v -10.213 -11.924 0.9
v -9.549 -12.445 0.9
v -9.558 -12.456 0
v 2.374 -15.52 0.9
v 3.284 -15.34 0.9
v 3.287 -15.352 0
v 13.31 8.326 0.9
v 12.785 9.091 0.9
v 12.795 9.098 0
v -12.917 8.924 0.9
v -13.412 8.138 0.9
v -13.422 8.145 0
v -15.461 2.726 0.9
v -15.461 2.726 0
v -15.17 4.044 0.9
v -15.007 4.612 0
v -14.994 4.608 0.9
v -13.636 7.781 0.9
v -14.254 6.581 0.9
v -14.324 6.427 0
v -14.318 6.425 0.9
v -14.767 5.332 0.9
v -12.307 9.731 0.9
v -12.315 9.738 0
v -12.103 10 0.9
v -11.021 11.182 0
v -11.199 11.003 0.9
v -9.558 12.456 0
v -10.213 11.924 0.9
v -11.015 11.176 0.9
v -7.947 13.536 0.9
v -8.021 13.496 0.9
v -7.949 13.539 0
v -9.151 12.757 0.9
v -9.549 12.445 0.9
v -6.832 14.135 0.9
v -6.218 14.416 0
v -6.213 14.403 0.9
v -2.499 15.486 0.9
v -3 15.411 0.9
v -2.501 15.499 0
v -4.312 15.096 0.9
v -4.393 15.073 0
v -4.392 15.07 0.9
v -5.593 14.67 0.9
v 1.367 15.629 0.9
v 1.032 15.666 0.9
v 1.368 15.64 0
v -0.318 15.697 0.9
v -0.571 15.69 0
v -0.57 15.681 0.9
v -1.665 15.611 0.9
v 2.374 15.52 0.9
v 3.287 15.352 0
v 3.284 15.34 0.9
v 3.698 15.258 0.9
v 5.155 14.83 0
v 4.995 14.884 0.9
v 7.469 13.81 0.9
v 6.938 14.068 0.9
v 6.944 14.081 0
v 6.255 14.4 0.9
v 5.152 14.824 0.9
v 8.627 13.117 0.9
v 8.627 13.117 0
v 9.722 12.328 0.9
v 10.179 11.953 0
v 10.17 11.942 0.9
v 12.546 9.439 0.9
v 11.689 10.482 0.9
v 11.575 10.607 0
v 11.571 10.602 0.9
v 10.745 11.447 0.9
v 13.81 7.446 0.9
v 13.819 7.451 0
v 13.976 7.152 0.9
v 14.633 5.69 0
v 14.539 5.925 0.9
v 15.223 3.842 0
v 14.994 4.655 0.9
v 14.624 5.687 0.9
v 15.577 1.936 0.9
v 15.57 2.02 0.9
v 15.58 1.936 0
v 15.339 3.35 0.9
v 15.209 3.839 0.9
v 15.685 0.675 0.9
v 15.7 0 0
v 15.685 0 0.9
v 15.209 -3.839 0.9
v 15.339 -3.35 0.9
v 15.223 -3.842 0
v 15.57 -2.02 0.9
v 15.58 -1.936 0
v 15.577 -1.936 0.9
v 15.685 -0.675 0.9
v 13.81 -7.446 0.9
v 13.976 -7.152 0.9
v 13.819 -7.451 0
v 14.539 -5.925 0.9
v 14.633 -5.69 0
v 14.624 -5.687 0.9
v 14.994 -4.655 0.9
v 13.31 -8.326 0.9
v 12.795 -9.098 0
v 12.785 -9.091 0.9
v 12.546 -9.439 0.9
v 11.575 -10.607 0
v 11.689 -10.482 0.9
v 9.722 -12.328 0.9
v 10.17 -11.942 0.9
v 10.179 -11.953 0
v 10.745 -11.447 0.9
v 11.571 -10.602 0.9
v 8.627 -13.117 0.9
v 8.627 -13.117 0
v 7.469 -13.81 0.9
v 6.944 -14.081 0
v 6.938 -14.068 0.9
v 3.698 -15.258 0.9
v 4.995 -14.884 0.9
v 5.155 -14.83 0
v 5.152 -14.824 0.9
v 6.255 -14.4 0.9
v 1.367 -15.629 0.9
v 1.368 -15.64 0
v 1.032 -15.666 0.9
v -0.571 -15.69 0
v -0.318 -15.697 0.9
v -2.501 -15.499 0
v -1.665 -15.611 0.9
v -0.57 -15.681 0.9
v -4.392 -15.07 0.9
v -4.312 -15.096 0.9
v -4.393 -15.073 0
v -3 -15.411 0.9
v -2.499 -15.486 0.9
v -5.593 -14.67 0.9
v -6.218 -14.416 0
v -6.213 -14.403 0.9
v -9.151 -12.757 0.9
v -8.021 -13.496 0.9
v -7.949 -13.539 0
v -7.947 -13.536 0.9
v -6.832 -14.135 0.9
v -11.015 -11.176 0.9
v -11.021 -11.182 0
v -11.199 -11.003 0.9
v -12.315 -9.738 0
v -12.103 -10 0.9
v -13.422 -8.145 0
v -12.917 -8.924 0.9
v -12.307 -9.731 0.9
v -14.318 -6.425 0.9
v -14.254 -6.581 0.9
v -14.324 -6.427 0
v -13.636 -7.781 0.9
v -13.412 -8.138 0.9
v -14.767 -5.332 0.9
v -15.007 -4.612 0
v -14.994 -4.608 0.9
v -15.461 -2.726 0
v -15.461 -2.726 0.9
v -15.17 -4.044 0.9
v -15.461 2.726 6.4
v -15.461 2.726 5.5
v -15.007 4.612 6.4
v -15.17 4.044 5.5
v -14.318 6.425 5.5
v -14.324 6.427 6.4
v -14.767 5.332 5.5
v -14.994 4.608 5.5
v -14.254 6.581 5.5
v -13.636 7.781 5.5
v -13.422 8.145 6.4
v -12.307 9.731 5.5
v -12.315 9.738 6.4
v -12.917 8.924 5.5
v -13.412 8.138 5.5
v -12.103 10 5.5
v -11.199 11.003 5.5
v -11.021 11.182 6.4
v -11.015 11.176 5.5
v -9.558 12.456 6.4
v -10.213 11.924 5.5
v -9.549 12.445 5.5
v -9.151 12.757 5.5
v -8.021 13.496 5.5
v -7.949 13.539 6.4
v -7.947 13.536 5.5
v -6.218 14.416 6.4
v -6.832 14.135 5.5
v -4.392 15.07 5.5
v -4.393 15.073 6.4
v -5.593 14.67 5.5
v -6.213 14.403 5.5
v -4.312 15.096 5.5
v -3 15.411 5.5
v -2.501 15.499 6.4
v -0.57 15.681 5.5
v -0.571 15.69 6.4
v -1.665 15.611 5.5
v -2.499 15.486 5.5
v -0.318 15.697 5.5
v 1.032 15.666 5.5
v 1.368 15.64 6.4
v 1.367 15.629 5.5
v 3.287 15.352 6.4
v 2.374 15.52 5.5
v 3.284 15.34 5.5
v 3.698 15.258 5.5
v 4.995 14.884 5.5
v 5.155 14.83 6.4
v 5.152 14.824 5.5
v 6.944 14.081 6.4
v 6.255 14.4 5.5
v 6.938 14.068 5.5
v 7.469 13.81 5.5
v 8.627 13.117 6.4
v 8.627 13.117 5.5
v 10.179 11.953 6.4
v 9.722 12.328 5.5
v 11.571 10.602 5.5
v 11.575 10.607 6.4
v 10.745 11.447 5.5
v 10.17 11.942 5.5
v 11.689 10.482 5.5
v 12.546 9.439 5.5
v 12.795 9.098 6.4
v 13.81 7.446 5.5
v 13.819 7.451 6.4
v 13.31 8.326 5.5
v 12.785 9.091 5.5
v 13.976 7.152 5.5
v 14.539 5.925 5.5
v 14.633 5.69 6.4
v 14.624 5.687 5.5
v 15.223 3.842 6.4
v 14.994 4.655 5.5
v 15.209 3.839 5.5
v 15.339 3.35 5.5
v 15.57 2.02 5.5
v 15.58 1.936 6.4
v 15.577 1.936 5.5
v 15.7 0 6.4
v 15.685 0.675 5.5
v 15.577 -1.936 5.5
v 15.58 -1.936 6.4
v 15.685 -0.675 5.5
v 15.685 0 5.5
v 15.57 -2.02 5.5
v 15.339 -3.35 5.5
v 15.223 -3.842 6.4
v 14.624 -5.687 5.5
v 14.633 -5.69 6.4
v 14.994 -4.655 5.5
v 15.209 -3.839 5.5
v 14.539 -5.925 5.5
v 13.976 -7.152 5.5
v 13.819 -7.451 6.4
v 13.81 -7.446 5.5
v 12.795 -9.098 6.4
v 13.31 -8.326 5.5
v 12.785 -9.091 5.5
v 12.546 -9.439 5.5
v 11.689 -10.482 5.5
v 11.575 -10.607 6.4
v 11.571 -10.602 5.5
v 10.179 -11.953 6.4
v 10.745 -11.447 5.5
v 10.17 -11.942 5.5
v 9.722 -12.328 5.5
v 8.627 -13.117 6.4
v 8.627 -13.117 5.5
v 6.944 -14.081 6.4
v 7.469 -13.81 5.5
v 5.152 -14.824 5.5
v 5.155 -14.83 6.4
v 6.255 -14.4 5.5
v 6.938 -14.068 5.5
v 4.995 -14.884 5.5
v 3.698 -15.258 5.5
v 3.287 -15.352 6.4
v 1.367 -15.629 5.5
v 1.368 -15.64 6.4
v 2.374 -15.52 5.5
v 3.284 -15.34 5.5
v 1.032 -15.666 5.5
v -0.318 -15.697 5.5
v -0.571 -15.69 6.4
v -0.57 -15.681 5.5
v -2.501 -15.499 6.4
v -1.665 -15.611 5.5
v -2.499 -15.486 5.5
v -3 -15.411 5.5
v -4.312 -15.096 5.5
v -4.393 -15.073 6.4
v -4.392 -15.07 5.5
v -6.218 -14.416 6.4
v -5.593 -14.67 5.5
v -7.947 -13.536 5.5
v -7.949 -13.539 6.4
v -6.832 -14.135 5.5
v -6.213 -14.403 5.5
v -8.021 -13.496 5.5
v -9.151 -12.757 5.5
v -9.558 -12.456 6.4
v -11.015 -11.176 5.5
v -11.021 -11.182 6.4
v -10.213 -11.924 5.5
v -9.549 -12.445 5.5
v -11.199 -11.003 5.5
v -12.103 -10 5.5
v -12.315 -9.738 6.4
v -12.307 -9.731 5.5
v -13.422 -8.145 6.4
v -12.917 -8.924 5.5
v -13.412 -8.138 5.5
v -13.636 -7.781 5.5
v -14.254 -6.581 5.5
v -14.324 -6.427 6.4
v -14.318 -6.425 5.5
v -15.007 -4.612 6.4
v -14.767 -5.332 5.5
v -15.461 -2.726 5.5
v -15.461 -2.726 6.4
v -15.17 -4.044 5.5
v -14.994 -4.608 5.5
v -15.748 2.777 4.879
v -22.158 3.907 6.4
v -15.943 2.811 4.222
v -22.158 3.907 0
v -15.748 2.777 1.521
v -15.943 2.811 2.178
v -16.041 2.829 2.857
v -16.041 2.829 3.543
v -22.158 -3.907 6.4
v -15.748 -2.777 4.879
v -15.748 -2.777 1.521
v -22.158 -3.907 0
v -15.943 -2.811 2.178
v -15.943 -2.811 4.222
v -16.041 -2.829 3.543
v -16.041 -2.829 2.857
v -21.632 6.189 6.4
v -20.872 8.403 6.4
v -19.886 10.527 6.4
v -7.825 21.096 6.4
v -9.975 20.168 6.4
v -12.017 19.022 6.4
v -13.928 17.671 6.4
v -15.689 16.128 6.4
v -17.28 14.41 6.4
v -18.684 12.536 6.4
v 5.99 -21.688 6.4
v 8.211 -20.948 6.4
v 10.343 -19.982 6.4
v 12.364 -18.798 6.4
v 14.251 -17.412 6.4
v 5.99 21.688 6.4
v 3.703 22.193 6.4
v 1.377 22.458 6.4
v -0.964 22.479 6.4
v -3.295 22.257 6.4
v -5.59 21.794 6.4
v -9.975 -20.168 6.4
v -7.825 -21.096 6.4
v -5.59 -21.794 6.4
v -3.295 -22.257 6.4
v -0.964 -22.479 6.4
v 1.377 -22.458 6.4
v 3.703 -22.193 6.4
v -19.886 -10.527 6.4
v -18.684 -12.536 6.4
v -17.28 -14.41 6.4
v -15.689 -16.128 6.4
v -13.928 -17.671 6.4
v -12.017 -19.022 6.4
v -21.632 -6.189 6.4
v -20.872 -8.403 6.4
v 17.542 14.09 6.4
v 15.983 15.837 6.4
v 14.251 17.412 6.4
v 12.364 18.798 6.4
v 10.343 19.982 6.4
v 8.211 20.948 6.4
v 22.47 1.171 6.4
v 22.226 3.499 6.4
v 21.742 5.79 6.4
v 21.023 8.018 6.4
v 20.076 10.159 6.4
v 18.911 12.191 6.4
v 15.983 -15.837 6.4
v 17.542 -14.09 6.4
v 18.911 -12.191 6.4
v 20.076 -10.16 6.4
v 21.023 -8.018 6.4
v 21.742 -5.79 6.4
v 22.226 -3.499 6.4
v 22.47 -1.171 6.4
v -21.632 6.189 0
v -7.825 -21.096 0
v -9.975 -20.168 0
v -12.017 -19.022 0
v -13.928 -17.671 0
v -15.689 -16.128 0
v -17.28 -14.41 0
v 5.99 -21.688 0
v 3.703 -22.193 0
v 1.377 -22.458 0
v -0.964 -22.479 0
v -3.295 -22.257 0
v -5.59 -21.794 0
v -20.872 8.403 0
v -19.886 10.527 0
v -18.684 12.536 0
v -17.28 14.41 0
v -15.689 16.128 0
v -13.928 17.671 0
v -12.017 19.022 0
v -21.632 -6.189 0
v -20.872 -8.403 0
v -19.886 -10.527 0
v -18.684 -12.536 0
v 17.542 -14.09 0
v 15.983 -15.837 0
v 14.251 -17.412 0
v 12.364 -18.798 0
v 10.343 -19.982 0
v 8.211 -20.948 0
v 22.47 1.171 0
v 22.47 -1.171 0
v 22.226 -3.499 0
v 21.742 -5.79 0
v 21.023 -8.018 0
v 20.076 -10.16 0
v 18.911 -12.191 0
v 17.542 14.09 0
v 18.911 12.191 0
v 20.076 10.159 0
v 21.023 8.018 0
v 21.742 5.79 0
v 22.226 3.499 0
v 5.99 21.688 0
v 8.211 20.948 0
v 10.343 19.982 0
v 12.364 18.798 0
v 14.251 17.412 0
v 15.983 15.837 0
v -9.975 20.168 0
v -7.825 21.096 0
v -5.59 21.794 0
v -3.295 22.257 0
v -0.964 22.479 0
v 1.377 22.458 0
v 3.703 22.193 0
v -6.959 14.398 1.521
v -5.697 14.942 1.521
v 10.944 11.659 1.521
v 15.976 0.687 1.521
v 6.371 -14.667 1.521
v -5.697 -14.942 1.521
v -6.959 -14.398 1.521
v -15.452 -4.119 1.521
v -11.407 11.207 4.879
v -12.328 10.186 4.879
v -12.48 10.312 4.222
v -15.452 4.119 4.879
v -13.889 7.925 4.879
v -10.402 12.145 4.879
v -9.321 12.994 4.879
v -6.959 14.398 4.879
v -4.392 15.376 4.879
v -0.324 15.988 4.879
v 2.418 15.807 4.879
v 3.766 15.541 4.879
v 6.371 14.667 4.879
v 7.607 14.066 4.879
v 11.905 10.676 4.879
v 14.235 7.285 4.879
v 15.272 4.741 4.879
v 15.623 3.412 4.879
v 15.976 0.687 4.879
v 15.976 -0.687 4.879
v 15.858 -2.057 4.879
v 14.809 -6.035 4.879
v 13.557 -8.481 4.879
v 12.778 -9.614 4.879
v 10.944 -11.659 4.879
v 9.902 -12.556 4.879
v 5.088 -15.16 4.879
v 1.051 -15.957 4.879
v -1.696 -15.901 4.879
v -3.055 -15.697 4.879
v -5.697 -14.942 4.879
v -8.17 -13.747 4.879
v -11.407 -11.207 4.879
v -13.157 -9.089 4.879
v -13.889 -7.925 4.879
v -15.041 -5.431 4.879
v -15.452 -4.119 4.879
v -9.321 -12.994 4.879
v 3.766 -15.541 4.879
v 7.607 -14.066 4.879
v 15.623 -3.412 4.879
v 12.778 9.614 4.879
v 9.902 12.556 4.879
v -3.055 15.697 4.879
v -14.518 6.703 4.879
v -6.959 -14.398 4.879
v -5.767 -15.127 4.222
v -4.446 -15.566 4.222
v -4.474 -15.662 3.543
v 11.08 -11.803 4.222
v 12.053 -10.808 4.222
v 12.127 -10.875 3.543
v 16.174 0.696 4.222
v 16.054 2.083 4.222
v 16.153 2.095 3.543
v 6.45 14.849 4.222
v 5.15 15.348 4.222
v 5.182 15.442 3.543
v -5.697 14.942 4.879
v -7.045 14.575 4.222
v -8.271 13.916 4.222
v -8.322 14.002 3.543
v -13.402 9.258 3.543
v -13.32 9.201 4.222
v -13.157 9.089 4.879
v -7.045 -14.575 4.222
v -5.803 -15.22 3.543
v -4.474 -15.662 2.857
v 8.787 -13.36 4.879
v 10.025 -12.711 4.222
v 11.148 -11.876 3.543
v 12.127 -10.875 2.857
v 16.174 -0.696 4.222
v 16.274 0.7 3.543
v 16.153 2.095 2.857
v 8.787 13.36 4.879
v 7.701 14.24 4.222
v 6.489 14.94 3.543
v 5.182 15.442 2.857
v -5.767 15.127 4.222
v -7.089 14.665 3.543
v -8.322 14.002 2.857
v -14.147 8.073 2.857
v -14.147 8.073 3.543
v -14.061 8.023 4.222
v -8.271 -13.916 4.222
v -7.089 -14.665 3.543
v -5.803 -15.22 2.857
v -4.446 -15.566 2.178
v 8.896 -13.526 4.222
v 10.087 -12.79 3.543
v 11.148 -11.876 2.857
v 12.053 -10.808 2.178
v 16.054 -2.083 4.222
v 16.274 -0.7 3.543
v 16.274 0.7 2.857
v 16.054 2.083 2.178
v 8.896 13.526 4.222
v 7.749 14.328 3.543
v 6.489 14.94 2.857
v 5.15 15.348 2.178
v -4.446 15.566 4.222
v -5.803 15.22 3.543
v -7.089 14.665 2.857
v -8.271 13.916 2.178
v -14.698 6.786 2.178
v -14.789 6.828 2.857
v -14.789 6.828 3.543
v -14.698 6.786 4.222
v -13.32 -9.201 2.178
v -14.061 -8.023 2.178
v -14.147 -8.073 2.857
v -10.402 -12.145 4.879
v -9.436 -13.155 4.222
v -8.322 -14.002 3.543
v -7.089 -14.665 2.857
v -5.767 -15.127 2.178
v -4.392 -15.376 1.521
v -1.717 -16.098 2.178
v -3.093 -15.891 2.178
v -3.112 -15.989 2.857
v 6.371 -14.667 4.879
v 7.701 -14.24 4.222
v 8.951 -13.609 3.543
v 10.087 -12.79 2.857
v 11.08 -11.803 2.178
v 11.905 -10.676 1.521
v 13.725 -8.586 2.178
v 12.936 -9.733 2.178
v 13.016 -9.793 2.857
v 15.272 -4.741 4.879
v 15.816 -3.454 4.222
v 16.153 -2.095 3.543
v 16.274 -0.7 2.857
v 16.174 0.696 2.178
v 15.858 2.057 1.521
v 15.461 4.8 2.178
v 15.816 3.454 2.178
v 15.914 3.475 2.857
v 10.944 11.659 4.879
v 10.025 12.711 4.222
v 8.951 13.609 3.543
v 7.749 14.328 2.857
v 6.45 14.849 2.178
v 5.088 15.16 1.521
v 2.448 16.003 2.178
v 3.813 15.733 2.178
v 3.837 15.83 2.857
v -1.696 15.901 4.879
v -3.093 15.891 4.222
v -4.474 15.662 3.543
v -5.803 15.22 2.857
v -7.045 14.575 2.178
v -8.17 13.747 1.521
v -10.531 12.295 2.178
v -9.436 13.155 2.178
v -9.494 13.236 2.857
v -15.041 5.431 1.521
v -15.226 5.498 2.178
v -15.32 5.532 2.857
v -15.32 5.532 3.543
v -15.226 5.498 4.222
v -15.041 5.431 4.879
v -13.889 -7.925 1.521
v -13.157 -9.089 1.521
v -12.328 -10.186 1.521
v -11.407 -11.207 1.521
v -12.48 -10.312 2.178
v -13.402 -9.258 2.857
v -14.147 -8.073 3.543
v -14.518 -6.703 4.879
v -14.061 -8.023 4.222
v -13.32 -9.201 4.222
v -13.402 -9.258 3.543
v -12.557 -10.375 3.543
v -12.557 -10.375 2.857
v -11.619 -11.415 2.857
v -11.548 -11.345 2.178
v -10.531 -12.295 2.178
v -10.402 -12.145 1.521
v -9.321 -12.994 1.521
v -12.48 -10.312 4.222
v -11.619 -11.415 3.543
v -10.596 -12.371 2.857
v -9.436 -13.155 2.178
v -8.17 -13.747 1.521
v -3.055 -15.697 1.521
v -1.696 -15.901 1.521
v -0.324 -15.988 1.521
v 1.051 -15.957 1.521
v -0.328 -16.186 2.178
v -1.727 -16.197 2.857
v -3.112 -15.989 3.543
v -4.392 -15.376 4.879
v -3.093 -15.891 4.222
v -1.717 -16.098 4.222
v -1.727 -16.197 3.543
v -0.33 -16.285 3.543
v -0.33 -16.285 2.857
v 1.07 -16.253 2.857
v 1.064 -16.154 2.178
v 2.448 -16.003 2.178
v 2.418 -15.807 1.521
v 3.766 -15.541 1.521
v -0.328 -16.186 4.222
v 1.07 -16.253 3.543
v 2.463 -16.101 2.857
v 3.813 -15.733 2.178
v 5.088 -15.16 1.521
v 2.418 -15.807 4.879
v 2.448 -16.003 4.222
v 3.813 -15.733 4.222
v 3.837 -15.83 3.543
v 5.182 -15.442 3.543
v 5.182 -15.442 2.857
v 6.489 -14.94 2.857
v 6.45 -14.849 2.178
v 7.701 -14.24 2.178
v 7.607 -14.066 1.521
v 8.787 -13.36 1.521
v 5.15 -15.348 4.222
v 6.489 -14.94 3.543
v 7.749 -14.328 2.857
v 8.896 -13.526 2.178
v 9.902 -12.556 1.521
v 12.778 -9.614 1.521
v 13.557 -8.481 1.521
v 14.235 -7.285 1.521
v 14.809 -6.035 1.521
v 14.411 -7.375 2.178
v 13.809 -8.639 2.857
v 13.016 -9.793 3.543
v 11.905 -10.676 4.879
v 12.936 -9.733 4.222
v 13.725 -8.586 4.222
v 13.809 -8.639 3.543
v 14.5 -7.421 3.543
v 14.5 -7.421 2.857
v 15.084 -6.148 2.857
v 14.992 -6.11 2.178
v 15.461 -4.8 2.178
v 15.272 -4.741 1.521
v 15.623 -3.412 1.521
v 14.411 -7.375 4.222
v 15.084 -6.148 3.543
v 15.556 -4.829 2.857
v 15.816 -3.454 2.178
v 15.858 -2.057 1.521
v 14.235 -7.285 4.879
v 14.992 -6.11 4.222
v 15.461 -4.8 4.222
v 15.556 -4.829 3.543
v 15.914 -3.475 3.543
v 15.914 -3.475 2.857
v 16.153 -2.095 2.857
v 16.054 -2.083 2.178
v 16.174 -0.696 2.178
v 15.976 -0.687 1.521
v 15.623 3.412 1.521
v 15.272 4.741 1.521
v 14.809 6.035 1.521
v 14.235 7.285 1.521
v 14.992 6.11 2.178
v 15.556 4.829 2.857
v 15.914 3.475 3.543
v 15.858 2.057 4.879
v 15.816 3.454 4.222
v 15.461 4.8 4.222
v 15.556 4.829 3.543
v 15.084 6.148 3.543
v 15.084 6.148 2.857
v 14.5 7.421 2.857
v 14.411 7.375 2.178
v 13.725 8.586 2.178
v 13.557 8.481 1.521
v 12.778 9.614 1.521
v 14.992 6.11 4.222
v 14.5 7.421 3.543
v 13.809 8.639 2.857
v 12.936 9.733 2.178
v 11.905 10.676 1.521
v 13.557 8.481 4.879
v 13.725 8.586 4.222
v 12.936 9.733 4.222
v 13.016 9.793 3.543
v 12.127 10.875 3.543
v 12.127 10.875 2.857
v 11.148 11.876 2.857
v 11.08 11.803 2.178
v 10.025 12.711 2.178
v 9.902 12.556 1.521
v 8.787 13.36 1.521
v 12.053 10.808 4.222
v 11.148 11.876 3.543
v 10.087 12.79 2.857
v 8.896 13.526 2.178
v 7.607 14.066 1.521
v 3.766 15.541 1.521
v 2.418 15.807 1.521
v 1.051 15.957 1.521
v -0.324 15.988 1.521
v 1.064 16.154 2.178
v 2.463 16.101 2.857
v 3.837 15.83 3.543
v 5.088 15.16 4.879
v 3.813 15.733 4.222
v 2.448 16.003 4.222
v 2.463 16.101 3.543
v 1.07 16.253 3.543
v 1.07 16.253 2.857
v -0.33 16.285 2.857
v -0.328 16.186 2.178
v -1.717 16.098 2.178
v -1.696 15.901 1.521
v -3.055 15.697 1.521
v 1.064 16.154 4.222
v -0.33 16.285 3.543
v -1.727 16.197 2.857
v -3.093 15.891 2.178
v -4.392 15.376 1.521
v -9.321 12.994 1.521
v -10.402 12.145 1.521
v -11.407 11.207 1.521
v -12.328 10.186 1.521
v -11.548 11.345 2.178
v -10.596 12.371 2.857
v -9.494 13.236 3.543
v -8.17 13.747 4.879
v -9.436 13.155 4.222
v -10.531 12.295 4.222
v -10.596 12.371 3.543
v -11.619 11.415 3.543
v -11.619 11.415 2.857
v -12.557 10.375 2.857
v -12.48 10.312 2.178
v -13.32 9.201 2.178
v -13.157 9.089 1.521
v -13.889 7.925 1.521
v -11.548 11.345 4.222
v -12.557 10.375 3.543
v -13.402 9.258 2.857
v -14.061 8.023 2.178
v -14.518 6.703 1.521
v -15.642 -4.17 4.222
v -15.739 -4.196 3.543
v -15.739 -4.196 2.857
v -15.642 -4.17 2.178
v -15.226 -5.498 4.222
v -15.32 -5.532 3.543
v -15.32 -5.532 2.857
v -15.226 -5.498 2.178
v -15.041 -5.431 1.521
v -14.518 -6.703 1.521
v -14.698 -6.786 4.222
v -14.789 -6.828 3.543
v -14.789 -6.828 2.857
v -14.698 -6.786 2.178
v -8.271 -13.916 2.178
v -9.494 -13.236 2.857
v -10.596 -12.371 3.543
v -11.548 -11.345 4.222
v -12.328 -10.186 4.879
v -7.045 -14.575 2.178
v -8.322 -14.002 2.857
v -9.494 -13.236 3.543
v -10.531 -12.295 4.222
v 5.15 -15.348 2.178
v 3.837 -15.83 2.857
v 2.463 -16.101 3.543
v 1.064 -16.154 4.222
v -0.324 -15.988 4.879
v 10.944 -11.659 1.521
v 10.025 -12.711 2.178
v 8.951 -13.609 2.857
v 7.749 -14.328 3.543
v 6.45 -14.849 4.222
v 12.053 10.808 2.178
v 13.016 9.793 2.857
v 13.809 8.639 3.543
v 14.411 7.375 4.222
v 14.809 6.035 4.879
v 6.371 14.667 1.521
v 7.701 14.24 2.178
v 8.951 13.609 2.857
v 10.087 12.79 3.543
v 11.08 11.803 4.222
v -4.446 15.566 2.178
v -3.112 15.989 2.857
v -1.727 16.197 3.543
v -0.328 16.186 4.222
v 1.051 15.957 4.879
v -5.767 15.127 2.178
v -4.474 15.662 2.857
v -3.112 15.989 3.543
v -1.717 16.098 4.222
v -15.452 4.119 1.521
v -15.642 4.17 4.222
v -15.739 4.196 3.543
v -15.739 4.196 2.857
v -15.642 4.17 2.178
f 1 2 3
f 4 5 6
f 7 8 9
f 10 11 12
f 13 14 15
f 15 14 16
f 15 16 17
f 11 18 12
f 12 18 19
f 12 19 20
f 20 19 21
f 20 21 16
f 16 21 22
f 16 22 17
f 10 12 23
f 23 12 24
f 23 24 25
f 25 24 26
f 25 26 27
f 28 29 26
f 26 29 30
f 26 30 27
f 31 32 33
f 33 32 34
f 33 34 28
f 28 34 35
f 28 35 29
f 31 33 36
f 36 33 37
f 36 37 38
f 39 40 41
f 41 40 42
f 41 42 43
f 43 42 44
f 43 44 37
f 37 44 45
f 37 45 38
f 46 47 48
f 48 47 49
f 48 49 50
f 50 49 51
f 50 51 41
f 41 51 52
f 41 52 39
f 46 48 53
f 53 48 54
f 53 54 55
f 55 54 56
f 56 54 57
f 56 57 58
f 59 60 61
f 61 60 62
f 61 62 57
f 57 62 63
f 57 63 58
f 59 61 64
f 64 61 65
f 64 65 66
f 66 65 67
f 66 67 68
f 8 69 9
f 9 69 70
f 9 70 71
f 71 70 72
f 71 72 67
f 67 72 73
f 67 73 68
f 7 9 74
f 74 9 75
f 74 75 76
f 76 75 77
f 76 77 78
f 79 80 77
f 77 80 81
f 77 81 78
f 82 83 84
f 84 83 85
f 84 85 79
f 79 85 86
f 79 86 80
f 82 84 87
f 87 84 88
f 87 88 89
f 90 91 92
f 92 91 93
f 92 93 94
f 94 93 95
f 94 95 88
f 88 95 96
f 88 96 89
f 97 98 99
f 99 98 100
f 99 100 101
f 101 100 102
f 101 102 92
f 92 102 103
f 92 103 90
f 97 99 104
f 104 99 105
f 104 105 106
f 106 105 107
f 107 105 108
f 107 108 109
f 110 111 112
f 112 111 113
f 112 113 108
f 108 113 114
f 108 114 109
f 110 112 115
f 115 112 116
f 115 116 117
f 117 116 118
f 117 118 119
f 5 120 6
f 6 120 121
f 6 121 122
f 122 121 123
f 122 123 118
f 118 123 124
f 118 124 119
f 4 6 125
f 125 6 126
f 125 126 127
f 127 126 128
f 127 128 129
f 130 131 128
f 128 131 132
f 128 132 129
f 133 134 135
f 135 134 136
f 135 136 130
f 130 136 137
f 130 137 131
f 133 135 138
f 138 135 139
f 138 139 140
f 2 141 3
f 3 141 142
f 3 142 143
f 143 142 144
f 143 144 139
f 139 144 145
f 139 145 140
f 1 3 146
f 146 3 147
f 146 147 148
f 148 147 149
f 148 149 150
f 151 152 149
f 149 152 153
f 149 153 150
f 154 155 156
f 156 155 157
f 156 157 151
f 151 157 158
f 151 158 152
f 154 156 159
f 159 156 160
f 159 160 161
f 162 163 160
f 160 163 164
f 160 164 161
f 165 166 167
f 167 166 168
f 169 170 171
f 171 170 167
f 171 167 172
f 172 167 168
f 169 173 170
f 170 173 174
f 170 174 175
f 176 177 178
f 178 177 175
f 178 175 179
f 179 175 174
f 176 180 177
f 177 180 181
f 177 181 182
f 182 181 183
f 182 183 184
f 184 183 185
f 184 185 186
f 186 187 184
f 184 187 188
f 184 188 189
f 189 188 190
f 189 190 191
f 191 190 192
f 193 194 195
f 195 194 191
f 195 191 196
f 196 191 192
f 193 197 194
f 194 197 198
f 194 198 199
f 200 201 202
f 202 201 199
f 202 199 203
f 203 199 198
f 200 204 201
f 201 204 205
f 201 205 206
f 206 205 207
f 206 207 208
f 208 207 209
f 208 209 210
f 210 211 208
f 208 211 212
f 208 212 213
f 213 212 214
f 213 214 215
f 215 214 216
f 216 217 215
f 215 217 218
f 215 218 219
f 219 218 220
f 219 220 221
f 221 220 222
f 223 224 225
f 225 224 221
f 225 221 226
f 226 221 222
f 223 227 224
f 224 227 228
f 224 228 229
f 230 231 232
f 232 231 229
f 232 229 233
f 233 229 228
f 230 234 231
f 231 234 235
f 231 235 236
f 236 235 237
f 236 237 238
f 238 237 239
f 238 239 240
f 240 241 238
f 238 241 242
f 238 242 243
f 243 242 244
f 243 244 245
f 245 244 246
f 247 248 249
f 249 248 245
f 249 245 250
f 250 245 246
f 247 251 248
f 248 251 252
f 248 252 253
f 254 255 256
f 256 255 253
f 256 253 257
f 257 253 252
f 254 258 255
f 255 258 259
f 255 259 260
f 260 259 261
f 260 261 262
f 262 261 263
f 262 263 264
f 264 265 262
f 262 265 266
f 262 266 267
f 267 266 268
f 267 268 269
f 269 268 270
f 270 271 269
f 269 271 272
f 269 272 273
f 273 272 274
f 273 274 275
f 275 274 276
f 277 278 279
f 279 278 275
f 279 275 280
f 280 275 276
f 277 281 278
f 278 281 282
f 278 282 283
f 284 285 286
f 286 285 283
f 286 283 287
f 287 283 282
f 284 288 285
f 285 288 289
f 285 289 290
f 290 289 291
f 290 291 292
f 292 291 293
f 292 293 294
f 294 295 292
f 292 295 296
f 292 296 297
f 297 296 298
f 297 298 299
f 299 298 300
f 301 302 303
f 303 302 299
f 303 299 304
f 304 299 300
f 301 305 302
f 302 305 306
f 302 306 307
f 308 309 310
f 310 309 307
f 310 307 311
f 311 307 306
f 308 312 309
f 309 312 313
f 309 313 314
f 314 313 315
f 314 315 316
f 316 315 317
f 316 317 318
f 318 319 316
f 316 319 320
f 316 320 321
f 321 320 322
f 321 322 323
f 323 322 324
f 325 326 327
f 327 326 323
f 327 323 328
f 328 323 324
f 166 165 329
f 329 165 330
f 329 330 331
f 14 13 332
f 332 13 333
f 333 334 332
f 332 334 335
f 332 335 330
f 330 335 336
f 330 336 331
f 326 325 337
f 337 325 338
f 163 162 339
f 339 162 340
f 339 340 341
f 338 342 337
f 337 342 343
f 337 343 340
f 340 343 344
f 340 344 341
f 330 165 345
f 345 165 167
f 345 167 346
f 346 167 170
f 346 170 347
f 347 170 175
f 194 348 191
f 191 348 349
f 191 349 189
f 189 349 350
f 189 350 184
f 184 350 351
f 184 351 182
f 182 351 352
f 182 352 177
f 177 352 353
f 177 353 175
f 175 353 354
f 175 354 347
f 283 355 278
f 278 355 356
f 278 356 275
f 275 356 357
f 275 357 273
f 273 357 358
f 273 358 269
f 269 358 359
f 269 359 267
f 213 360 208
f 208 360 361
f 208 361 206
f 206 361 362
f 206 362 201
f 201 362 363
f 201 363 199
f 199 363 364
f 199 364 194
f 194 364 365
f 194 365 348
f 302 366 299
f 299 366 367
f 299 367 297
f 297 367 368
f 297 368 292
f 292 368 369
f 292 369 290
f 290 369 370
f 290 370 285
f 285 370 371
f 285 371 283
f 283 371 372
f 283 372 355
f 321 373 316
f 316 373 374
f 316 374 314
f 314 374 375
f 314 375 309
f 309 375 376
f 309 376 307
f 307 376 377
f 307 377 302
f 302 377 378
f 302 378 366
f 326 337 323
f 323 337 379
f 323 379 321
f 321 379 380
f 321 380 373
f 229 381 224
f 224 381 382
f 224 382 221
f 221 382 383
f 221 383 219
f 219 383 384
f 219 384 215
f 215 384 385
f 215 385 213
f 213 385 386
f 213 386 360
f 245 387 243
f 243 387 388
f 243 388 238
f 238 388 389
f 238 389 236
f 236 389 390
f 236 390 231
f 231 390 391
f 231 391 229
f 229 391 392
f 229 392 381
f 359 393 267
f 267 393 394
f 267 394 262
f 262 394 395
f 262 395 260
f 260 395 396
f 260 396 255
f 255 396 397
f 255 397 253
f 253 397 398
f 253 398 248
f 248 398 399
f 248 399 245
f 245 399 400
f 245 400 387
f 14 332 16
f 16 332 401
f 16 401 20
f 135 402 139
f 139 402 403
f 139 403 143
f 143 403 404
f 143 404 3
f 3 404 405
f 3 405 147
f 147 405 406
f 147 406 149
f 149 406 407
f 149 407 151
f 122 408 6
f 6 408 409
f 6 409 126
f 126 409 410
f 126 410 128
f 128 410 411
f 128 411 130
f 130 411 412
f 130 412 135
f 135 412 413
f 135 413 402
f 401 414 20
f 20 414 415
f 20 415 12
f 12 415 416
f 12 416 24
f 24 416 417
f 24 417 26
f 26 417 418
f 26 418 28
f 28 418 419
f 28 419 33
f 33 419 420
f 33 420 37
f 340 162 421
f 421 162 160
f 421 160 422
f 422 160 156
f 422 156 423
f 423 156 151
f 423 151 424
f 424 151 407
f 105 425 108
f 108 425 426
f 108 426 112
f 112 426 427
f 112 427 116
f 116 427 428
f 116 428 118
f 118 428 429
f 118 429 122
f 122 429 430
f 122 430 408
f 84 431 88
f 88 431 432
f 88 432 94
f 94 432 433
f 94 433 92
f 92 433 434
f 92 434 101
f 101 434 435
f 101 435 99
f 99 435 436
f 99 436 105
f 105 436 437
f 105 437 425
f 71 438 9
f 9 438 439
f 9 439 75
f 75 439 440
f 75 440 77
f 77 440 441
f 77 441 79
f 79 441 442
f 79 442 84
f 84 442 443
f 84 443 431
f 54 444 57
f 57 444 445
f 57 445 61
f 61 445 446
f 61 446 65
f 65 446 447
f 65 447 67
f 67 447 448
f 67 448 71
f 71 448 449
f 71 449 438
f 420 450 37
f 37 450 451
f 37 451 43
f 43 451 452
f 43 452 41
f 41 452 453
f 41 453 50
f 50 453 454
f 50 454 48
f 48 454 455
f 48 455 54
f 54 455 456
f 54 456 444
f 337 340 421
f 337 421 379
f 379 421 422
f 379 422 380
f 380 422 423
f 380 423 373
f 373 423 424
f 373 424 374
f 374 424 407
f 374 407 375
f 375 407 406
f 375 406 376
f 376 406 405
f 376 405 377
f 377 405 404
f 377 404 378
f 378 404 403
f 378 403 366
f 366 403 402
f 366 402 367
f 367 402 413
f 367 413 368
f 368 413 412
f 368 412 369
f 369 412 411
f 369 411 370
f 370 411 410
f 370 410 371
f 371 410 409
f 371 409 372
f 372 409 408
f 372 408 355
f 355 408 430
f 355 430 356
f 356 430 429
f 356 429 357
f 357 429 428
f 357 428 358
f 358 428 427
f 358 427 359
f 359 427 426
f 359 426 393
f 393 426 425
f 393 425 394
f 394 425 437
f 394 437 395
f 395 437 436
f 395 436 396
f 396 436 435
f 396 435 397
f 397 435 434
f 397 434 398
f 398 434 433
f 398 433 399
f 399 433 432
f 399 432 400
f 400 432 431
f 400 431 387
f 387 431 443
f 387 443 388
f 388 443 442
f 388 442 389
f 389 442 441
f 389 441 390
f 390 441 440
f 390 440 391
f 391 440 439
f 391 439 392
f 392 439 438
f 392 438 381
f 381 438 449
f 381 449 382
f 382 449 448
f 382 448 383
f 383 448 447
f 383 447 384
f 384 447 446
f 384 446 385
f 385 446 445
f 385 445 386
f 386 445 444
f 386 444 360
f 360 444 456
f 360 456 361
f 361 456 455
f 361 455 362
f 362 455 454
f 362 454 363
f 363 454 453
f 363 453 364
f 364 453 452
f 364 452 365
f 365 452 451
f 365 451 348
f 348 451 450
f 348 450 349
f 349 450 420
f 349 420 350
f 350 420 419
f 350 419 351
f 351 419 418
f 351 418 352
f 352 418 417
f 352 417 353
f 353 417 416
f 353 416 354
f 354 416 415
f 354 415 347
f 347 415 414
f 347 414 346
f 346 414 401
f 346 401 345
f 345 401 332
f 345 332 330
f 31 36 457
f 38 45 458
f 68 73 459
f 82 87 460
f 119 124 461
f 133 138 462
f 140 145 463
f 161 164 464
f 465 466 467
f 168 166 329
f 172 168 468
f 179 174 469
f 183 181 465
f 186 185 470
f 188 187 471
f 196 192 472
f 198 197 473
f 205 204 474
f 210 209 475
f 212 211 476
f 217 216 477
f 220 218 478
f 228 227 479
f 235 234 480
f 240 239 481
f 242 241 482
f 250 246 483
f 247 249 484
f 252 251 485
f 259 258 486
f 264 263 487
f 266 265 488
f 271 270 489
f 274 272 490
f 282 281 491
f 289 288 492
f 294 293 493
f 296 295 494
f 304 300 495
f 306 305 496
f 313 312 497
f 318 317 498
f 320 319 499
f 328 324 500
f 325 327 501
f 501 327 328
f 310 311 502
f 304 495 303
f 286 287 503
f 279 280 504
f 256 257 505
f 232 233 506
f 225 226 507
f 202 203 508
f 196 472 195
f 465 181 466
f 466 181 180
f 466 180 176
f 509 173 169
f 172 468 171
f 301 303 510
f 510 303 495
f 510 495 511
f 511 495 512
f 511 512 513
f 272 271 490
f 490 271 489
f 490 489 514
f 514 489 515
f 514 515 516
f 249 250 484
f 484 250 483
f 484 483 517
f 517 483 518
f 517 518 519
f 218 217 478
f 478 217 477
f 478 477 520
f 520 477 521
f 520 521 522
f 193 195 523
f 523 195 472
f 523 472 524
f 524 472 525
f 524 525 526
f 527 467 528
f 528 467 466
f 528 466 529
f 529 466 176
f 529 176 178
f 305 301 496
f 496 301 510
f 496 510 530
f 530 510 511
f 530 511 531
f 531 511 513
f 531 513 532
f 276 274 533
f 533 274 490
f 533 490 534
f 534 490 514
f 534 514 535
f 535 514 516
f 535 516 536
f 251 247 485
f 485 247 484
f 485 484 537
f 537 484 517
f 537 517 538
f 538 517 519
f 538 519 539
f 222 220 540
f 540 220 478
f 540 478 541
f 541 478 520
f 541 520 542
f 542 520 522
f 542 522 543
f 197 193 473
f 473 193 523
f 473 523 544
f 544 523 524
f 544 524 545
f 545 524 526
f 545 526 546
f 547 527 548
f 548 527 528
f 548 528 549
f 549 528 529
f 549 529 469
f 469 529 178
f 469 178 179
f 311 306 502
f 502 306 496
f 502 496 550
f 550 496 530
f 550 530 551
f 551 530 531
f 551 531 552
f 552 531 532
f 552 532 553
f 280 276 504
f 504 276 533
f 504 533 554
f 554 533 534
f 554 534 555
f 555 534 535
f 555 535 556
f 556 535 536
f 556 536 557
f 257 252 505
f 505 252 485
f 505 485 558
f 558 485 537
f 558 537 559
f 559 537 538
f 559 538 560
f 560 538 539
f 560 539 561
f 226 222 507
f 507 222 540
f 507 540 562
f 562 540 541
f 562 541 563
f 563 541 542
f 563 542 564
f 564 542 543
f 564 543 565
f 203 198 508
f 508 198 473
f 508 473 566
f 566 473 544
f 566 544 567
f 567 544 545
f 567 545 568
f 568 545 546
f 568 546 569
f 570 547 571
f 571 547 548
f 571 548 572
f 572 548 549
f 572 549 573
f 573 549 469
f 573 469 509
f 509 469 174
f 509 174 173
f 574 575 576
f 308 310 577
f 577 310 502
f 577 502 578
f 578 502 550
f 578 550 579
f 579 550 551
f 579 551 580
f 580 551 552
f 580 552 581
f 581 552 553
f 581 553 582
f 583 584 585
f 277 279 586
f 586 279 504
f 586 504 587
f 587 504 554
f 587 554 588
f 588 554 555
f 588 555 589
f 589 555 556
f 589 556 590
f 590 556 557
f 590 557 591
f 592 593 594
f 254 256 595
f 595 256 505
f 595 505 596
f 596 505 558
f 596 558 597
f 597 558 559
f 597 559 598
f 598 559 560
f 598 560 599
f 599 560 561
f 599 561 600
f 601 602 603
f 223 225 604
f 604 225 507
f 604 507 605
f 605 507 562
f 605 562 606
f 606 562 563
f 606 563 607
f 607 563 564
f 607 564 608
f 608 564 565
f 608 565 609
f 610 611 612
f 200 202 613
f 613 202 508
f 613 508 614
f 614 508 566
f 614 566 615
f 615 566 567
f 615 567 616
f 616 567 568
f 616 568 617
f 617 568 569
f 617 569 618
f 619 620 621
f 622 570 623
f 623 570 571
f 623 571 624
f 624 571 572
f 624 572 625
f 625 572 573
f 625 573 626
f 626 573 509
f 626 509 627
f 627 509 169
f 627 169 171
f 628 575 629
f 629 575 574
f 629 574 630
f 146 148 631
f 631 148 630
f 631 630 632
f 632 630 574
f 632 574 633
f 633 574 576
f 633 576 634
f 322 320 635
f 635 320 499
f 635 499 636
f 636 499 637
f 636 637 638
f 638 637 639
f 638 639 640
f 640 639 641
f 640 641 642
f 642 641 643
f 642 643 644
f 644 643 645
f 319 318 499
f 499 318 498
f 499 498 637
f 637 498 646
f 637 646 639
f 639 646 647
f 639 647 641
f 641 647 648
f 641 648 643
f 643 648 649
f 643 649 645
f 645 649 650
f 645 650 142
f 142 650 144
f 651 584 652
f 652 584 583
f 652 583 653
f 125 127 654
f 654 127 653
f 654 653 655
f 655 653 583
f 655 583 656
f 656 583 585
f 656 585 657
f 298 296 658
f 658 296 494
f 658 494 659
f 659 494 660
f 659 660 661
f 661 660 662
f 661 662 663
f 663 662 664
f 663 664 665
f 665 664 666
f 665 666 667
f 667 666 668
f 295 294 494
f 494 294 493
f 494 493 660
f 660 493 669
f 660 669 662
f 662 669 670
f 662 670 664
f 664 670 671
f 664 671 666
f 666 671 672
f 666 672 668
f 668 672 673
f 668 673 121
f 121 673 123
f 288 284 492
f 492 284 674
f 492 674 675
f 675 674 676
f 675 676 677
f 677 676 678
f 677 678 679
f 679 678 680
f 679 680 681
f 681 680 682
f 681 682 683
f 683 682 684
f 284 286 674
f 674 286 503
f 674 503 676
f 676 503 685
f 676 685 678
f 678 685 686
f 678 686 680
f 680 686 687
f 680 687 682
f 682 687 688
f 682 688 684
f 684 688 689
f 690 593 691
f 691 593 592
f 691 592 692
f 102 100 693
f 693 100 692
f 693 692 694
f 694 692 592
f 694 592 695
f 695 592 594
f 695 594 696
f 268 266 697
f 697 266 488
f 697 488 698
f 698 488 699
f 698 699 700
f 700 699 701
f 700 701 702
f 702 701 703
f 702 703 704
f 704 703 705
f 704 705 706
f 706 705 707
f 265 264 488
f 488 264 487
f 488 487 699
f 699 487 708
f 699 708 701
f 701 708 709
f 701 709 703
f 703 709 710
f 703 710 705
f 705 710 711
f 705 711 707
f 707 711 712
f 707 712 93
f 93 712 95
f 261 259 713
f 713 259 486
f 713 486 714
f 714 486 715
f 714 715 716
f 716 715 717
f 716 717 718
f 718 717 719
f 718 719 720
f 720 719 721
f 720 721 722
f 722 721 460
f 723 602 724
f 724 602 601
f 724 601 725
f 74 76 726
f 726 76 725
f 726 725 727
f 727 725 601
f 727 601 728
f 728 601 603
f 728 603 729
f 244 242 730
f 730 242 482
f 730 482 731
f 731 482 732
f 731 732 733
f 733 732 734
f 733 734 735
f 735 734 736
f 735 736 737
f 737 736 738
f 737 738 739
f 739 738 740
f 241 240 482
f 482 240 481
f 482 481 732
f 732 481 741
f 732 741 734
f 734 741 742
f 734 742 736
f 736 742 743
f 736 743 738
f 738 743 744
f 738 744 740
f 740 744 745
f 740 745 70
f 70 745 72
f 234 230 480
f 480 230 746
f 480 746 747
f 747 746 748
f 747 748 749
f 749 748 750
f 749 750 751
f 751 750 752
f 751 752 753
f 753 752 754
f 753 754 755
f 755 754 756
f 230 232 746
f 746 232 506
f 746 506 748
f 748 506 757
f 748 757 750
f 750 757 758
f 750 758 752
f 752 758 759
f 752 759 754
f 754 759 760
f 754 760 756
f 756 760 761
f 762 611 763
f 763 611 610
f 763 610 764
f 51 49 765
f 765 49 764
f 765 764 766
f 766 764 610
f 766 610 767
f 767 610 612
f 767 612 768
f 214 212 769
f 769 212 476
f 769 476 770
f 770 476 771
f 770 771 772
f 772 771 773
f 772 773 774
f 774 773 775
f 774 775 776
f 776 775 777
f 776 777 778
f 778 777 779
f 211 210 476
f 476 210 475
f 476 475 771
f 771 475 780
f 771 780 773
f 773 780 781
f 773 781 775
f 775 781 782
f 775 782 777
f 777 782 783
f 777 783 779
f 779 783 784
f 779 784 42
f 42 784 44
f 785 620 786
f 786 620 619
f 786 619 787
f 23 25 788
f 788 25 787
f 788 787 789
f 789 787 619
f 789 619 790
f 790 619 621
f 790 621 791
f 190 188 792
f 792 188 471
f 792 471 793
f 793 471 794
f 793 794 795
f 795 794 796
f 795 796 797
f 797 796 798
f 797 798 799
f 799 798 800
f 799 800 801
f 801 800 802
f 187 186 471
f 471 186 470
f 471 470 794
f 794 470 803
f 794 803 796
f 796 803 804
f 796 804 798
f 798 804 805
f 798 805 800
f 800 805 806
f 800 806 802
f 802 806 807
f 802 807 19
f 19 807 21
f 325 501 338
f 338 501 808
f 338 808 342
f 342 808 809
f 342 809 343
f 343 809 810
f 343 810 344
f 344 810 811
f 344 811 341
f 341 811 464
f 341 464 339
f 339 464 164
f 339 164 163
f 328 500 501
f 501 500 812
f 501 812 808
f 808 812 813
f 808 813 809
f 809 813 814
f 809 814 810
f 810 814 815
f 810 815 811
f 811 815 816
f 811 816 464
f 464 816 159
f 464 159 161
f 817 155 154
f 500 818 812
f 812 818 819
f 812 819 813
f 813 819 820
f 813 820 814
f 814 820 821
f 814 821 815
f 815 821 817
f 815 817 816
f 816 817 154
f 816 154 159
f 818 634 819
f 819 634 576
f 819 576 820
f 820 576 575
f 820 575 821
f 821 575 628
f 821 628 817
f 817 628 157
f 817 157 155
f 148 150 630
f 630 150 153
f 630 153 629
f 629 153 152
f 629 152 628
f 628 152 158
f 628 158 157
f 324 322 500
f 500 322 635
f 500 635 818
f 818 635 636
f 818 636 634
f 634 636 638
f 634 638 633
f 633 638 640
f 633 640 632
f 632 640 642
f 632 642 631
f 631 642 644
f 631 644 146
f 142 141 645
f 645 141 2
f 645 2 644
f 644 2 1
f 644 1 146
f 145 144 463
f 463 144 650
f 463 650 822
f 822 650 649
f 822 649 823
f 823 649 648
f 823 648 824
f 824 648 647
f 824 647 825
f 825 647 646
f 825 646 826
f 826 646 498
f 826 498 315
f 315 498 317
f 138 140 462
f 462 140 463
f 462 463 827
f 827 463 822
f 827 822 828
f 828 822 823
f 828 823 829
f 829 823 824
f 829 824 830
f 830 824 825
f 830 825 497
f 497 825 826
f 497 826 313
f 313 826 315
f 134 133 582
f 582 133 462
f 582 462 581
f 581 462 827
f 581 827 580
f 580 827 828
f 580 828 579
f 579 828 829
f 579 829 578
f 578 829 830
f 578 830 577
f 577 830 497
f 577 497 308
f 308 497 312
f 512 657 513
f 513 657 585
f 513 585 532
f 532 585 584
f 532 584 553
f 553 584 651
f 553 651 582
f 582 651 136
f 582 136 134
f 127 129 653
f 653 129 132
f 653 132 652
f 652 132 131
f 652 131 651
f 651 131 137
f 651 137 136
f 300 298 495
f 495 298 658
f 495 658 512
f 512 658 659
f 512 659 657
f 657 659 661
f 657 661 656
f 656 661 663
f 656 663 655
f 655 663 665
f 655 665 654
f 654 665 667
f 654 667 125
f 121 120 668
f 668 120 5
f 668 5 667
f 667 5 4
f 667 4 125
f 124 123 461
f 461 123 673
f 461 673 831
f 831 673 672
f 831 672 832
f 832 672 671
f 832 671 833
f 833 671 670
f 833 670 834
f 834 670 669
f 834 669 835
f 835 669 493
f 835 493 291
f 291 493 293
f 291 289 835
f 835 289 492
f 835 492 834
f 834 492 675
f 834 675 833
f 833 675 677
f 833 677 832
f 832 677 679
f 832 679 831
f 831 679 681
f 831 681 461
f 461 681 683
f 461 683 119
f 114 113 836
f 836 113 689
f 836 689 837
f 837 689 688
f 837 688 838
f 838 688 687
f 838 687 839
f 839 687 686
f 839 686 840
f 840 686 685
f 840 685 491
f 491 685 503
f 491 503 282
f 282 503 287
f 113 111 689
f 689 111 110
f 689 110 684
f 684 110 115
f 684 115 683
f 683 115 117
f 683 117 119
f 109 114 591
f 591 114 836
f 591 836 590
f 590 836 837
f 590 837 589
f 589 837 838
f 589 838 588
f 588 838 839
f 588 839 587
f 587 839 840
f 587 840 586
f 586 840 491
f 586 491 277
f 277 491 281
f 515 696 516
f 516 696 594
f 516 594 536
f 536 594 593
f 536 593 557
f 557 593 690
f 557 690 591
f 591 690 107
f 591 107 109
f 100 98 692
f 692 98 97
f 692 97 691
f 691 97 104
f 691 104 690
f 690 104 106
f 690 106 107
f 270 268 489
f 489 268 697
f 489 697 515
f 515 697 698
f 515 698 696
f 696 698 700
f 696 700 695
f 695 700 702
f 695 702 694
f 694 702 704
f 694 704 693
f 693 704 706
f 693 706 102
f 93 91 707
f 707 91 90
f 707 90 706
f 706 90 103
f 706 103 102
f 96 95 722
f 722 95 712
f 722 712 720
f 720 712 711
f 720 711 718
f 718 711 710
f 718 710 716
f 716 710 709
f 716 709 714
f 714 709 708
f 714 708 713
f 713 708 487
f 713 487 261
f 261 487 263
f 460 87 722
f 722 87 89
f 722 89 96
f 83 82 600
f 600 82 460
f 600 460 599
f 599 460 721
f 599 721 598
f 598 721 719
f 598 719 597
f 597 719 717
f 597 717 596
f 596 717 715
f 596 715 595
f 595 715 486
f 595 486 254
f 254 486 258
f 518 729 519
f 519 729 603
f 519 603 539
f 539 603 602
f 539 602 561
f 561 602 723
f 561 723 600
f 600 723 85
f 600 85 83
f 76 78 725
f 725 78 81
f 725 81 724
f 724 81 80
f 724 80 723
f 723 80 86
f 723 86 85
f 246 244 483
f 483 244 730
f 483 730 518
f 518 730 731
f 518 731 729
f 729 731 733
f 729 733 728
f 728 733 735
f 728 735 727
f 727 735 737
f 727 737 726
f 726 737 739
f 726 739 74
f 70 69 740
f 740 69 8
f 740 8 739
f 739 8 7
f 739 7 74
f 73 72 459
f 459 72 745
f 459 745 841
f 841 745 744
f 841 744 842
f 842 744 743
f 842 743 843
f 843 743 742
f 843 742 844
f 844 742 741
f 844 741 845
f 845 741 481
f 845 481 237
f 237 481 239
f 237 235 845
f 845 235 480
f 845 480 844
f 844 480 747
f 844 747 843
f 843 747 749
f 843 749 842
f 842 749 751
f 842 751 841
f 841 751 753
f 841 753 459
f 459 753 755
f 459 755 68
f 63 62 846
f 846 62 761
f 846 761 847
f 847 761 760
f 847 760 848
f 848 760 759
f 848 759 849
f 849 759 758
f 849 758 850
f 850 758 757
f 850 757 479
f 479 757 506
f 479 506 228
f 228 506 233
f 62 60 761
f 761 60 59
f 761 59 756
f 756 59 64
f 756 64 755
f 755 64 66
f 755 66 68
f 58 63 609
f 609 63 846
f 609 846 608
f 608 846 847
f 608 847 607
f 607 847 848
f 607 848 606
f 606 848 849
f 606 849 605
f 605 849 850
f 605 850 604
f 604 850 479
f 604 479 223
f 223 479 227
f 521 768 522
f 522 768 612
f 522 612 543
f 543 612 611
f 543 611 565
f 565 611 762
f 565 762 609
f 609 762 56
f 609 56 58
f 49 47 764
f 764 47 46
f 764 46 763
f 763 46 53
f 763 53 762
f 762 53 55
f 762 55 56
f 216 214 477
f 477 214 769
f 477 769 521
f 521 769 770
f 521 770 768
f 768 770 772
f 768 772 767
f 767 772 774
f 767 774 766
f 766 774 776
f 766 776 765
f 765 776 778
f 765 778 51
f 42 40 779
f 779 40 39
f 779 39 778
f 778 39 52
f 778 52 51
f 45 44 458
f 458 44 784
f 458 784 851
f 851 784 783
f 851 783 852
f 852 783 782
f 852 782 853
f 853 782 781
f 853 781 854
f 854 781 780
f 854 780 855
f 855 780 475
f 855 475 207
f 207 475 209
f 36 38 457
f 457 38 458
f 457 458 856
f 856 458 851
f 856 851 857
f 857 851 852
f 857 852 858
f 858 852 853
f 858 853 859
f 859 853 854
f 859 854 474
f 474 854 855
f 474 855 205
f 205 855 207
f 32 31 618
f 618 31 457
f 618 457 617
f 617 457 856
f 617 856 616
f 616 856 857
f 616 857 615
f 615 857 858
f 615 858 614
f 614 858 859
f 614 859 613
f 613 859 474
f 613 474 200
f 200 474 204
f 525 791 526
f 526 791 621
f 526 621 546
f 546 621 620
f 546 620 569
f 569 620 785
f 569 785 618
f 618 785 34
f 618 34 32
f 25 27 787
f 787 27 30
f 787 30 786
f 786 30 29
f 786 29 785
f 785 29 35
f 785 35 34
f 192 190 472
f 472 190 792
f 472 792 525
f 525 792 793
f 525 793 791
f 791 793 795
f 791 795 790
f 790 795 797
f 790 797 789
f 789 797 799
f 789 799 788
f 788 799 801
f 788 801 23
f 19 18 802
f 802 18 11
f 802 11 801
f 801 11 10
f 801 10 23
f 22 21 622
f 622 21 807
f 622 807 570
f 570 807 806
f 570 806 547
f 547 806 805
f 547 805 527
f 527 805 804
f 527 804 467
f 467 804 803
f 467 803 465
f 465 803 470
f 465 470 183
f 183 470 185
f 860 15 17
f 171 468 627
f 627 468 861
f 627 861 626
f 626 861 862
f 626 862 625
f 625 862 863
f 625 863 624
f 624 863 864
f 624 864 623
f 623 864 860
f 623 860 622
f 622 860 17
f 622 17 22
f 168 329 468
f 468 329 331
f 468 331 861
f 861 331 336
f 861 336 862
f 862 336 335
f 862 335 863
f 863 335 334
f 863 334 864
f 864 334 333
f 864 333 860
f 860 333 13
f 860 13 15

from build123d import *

# Parameters (mm, degrees)
SKETCH1_R           = 22.5
SKETCH1_R_2         = 15.7
BOSS_EXTRUDE1_DEPTH = 6.4
CUT_EXTRUDE1_DEPTH  = 33.457048541


with BuildPart() as part:
    # Sketch1 → Boss-Extrude1 (new body)
    with BuildSketch(Plane.XY):
        Circle(SKETCH1_R)
        Circle(SKETCH1_R_2, mode=Mode.SUBTRACT)
    extrude(amount=BOSS_EXTRUDE1_DEPTH)

    # Sketch2 → Cut-Extrude1 (cut, through all)
    with BuildSketch(Plane.XY):
        Polygon((0, 0), (-29.645546143, 5.227309643), (-29.645546143, -5.227309643), align=None)
    extrude(amount=CUT_EXTRUDE1_DEPTH, mode=Mode.SUBTRACT)

    # Sketch5 → Cut-Revolve1 (revolve, cut)
    with BuildSketch(Plane(origin=(0, 0, 0), x_dir=(-0.984807753012197, 0.1736481776669938, 0), z_dir=(-0.1736481776669938, -0.984807753012197, 0))):
        with BuildLine():
            Line((15.7, -0.9), (15.7, -5.5))
            ThreePointArc((15.7, -5.5), (16.301238658, -3.2), (15.7, -0.9))
        make_face()
    revolve(axis=Axis((0, 0, -0.32), (0, 0, 1)), mode=Mode.SUBTRACT)


solid = part.part
